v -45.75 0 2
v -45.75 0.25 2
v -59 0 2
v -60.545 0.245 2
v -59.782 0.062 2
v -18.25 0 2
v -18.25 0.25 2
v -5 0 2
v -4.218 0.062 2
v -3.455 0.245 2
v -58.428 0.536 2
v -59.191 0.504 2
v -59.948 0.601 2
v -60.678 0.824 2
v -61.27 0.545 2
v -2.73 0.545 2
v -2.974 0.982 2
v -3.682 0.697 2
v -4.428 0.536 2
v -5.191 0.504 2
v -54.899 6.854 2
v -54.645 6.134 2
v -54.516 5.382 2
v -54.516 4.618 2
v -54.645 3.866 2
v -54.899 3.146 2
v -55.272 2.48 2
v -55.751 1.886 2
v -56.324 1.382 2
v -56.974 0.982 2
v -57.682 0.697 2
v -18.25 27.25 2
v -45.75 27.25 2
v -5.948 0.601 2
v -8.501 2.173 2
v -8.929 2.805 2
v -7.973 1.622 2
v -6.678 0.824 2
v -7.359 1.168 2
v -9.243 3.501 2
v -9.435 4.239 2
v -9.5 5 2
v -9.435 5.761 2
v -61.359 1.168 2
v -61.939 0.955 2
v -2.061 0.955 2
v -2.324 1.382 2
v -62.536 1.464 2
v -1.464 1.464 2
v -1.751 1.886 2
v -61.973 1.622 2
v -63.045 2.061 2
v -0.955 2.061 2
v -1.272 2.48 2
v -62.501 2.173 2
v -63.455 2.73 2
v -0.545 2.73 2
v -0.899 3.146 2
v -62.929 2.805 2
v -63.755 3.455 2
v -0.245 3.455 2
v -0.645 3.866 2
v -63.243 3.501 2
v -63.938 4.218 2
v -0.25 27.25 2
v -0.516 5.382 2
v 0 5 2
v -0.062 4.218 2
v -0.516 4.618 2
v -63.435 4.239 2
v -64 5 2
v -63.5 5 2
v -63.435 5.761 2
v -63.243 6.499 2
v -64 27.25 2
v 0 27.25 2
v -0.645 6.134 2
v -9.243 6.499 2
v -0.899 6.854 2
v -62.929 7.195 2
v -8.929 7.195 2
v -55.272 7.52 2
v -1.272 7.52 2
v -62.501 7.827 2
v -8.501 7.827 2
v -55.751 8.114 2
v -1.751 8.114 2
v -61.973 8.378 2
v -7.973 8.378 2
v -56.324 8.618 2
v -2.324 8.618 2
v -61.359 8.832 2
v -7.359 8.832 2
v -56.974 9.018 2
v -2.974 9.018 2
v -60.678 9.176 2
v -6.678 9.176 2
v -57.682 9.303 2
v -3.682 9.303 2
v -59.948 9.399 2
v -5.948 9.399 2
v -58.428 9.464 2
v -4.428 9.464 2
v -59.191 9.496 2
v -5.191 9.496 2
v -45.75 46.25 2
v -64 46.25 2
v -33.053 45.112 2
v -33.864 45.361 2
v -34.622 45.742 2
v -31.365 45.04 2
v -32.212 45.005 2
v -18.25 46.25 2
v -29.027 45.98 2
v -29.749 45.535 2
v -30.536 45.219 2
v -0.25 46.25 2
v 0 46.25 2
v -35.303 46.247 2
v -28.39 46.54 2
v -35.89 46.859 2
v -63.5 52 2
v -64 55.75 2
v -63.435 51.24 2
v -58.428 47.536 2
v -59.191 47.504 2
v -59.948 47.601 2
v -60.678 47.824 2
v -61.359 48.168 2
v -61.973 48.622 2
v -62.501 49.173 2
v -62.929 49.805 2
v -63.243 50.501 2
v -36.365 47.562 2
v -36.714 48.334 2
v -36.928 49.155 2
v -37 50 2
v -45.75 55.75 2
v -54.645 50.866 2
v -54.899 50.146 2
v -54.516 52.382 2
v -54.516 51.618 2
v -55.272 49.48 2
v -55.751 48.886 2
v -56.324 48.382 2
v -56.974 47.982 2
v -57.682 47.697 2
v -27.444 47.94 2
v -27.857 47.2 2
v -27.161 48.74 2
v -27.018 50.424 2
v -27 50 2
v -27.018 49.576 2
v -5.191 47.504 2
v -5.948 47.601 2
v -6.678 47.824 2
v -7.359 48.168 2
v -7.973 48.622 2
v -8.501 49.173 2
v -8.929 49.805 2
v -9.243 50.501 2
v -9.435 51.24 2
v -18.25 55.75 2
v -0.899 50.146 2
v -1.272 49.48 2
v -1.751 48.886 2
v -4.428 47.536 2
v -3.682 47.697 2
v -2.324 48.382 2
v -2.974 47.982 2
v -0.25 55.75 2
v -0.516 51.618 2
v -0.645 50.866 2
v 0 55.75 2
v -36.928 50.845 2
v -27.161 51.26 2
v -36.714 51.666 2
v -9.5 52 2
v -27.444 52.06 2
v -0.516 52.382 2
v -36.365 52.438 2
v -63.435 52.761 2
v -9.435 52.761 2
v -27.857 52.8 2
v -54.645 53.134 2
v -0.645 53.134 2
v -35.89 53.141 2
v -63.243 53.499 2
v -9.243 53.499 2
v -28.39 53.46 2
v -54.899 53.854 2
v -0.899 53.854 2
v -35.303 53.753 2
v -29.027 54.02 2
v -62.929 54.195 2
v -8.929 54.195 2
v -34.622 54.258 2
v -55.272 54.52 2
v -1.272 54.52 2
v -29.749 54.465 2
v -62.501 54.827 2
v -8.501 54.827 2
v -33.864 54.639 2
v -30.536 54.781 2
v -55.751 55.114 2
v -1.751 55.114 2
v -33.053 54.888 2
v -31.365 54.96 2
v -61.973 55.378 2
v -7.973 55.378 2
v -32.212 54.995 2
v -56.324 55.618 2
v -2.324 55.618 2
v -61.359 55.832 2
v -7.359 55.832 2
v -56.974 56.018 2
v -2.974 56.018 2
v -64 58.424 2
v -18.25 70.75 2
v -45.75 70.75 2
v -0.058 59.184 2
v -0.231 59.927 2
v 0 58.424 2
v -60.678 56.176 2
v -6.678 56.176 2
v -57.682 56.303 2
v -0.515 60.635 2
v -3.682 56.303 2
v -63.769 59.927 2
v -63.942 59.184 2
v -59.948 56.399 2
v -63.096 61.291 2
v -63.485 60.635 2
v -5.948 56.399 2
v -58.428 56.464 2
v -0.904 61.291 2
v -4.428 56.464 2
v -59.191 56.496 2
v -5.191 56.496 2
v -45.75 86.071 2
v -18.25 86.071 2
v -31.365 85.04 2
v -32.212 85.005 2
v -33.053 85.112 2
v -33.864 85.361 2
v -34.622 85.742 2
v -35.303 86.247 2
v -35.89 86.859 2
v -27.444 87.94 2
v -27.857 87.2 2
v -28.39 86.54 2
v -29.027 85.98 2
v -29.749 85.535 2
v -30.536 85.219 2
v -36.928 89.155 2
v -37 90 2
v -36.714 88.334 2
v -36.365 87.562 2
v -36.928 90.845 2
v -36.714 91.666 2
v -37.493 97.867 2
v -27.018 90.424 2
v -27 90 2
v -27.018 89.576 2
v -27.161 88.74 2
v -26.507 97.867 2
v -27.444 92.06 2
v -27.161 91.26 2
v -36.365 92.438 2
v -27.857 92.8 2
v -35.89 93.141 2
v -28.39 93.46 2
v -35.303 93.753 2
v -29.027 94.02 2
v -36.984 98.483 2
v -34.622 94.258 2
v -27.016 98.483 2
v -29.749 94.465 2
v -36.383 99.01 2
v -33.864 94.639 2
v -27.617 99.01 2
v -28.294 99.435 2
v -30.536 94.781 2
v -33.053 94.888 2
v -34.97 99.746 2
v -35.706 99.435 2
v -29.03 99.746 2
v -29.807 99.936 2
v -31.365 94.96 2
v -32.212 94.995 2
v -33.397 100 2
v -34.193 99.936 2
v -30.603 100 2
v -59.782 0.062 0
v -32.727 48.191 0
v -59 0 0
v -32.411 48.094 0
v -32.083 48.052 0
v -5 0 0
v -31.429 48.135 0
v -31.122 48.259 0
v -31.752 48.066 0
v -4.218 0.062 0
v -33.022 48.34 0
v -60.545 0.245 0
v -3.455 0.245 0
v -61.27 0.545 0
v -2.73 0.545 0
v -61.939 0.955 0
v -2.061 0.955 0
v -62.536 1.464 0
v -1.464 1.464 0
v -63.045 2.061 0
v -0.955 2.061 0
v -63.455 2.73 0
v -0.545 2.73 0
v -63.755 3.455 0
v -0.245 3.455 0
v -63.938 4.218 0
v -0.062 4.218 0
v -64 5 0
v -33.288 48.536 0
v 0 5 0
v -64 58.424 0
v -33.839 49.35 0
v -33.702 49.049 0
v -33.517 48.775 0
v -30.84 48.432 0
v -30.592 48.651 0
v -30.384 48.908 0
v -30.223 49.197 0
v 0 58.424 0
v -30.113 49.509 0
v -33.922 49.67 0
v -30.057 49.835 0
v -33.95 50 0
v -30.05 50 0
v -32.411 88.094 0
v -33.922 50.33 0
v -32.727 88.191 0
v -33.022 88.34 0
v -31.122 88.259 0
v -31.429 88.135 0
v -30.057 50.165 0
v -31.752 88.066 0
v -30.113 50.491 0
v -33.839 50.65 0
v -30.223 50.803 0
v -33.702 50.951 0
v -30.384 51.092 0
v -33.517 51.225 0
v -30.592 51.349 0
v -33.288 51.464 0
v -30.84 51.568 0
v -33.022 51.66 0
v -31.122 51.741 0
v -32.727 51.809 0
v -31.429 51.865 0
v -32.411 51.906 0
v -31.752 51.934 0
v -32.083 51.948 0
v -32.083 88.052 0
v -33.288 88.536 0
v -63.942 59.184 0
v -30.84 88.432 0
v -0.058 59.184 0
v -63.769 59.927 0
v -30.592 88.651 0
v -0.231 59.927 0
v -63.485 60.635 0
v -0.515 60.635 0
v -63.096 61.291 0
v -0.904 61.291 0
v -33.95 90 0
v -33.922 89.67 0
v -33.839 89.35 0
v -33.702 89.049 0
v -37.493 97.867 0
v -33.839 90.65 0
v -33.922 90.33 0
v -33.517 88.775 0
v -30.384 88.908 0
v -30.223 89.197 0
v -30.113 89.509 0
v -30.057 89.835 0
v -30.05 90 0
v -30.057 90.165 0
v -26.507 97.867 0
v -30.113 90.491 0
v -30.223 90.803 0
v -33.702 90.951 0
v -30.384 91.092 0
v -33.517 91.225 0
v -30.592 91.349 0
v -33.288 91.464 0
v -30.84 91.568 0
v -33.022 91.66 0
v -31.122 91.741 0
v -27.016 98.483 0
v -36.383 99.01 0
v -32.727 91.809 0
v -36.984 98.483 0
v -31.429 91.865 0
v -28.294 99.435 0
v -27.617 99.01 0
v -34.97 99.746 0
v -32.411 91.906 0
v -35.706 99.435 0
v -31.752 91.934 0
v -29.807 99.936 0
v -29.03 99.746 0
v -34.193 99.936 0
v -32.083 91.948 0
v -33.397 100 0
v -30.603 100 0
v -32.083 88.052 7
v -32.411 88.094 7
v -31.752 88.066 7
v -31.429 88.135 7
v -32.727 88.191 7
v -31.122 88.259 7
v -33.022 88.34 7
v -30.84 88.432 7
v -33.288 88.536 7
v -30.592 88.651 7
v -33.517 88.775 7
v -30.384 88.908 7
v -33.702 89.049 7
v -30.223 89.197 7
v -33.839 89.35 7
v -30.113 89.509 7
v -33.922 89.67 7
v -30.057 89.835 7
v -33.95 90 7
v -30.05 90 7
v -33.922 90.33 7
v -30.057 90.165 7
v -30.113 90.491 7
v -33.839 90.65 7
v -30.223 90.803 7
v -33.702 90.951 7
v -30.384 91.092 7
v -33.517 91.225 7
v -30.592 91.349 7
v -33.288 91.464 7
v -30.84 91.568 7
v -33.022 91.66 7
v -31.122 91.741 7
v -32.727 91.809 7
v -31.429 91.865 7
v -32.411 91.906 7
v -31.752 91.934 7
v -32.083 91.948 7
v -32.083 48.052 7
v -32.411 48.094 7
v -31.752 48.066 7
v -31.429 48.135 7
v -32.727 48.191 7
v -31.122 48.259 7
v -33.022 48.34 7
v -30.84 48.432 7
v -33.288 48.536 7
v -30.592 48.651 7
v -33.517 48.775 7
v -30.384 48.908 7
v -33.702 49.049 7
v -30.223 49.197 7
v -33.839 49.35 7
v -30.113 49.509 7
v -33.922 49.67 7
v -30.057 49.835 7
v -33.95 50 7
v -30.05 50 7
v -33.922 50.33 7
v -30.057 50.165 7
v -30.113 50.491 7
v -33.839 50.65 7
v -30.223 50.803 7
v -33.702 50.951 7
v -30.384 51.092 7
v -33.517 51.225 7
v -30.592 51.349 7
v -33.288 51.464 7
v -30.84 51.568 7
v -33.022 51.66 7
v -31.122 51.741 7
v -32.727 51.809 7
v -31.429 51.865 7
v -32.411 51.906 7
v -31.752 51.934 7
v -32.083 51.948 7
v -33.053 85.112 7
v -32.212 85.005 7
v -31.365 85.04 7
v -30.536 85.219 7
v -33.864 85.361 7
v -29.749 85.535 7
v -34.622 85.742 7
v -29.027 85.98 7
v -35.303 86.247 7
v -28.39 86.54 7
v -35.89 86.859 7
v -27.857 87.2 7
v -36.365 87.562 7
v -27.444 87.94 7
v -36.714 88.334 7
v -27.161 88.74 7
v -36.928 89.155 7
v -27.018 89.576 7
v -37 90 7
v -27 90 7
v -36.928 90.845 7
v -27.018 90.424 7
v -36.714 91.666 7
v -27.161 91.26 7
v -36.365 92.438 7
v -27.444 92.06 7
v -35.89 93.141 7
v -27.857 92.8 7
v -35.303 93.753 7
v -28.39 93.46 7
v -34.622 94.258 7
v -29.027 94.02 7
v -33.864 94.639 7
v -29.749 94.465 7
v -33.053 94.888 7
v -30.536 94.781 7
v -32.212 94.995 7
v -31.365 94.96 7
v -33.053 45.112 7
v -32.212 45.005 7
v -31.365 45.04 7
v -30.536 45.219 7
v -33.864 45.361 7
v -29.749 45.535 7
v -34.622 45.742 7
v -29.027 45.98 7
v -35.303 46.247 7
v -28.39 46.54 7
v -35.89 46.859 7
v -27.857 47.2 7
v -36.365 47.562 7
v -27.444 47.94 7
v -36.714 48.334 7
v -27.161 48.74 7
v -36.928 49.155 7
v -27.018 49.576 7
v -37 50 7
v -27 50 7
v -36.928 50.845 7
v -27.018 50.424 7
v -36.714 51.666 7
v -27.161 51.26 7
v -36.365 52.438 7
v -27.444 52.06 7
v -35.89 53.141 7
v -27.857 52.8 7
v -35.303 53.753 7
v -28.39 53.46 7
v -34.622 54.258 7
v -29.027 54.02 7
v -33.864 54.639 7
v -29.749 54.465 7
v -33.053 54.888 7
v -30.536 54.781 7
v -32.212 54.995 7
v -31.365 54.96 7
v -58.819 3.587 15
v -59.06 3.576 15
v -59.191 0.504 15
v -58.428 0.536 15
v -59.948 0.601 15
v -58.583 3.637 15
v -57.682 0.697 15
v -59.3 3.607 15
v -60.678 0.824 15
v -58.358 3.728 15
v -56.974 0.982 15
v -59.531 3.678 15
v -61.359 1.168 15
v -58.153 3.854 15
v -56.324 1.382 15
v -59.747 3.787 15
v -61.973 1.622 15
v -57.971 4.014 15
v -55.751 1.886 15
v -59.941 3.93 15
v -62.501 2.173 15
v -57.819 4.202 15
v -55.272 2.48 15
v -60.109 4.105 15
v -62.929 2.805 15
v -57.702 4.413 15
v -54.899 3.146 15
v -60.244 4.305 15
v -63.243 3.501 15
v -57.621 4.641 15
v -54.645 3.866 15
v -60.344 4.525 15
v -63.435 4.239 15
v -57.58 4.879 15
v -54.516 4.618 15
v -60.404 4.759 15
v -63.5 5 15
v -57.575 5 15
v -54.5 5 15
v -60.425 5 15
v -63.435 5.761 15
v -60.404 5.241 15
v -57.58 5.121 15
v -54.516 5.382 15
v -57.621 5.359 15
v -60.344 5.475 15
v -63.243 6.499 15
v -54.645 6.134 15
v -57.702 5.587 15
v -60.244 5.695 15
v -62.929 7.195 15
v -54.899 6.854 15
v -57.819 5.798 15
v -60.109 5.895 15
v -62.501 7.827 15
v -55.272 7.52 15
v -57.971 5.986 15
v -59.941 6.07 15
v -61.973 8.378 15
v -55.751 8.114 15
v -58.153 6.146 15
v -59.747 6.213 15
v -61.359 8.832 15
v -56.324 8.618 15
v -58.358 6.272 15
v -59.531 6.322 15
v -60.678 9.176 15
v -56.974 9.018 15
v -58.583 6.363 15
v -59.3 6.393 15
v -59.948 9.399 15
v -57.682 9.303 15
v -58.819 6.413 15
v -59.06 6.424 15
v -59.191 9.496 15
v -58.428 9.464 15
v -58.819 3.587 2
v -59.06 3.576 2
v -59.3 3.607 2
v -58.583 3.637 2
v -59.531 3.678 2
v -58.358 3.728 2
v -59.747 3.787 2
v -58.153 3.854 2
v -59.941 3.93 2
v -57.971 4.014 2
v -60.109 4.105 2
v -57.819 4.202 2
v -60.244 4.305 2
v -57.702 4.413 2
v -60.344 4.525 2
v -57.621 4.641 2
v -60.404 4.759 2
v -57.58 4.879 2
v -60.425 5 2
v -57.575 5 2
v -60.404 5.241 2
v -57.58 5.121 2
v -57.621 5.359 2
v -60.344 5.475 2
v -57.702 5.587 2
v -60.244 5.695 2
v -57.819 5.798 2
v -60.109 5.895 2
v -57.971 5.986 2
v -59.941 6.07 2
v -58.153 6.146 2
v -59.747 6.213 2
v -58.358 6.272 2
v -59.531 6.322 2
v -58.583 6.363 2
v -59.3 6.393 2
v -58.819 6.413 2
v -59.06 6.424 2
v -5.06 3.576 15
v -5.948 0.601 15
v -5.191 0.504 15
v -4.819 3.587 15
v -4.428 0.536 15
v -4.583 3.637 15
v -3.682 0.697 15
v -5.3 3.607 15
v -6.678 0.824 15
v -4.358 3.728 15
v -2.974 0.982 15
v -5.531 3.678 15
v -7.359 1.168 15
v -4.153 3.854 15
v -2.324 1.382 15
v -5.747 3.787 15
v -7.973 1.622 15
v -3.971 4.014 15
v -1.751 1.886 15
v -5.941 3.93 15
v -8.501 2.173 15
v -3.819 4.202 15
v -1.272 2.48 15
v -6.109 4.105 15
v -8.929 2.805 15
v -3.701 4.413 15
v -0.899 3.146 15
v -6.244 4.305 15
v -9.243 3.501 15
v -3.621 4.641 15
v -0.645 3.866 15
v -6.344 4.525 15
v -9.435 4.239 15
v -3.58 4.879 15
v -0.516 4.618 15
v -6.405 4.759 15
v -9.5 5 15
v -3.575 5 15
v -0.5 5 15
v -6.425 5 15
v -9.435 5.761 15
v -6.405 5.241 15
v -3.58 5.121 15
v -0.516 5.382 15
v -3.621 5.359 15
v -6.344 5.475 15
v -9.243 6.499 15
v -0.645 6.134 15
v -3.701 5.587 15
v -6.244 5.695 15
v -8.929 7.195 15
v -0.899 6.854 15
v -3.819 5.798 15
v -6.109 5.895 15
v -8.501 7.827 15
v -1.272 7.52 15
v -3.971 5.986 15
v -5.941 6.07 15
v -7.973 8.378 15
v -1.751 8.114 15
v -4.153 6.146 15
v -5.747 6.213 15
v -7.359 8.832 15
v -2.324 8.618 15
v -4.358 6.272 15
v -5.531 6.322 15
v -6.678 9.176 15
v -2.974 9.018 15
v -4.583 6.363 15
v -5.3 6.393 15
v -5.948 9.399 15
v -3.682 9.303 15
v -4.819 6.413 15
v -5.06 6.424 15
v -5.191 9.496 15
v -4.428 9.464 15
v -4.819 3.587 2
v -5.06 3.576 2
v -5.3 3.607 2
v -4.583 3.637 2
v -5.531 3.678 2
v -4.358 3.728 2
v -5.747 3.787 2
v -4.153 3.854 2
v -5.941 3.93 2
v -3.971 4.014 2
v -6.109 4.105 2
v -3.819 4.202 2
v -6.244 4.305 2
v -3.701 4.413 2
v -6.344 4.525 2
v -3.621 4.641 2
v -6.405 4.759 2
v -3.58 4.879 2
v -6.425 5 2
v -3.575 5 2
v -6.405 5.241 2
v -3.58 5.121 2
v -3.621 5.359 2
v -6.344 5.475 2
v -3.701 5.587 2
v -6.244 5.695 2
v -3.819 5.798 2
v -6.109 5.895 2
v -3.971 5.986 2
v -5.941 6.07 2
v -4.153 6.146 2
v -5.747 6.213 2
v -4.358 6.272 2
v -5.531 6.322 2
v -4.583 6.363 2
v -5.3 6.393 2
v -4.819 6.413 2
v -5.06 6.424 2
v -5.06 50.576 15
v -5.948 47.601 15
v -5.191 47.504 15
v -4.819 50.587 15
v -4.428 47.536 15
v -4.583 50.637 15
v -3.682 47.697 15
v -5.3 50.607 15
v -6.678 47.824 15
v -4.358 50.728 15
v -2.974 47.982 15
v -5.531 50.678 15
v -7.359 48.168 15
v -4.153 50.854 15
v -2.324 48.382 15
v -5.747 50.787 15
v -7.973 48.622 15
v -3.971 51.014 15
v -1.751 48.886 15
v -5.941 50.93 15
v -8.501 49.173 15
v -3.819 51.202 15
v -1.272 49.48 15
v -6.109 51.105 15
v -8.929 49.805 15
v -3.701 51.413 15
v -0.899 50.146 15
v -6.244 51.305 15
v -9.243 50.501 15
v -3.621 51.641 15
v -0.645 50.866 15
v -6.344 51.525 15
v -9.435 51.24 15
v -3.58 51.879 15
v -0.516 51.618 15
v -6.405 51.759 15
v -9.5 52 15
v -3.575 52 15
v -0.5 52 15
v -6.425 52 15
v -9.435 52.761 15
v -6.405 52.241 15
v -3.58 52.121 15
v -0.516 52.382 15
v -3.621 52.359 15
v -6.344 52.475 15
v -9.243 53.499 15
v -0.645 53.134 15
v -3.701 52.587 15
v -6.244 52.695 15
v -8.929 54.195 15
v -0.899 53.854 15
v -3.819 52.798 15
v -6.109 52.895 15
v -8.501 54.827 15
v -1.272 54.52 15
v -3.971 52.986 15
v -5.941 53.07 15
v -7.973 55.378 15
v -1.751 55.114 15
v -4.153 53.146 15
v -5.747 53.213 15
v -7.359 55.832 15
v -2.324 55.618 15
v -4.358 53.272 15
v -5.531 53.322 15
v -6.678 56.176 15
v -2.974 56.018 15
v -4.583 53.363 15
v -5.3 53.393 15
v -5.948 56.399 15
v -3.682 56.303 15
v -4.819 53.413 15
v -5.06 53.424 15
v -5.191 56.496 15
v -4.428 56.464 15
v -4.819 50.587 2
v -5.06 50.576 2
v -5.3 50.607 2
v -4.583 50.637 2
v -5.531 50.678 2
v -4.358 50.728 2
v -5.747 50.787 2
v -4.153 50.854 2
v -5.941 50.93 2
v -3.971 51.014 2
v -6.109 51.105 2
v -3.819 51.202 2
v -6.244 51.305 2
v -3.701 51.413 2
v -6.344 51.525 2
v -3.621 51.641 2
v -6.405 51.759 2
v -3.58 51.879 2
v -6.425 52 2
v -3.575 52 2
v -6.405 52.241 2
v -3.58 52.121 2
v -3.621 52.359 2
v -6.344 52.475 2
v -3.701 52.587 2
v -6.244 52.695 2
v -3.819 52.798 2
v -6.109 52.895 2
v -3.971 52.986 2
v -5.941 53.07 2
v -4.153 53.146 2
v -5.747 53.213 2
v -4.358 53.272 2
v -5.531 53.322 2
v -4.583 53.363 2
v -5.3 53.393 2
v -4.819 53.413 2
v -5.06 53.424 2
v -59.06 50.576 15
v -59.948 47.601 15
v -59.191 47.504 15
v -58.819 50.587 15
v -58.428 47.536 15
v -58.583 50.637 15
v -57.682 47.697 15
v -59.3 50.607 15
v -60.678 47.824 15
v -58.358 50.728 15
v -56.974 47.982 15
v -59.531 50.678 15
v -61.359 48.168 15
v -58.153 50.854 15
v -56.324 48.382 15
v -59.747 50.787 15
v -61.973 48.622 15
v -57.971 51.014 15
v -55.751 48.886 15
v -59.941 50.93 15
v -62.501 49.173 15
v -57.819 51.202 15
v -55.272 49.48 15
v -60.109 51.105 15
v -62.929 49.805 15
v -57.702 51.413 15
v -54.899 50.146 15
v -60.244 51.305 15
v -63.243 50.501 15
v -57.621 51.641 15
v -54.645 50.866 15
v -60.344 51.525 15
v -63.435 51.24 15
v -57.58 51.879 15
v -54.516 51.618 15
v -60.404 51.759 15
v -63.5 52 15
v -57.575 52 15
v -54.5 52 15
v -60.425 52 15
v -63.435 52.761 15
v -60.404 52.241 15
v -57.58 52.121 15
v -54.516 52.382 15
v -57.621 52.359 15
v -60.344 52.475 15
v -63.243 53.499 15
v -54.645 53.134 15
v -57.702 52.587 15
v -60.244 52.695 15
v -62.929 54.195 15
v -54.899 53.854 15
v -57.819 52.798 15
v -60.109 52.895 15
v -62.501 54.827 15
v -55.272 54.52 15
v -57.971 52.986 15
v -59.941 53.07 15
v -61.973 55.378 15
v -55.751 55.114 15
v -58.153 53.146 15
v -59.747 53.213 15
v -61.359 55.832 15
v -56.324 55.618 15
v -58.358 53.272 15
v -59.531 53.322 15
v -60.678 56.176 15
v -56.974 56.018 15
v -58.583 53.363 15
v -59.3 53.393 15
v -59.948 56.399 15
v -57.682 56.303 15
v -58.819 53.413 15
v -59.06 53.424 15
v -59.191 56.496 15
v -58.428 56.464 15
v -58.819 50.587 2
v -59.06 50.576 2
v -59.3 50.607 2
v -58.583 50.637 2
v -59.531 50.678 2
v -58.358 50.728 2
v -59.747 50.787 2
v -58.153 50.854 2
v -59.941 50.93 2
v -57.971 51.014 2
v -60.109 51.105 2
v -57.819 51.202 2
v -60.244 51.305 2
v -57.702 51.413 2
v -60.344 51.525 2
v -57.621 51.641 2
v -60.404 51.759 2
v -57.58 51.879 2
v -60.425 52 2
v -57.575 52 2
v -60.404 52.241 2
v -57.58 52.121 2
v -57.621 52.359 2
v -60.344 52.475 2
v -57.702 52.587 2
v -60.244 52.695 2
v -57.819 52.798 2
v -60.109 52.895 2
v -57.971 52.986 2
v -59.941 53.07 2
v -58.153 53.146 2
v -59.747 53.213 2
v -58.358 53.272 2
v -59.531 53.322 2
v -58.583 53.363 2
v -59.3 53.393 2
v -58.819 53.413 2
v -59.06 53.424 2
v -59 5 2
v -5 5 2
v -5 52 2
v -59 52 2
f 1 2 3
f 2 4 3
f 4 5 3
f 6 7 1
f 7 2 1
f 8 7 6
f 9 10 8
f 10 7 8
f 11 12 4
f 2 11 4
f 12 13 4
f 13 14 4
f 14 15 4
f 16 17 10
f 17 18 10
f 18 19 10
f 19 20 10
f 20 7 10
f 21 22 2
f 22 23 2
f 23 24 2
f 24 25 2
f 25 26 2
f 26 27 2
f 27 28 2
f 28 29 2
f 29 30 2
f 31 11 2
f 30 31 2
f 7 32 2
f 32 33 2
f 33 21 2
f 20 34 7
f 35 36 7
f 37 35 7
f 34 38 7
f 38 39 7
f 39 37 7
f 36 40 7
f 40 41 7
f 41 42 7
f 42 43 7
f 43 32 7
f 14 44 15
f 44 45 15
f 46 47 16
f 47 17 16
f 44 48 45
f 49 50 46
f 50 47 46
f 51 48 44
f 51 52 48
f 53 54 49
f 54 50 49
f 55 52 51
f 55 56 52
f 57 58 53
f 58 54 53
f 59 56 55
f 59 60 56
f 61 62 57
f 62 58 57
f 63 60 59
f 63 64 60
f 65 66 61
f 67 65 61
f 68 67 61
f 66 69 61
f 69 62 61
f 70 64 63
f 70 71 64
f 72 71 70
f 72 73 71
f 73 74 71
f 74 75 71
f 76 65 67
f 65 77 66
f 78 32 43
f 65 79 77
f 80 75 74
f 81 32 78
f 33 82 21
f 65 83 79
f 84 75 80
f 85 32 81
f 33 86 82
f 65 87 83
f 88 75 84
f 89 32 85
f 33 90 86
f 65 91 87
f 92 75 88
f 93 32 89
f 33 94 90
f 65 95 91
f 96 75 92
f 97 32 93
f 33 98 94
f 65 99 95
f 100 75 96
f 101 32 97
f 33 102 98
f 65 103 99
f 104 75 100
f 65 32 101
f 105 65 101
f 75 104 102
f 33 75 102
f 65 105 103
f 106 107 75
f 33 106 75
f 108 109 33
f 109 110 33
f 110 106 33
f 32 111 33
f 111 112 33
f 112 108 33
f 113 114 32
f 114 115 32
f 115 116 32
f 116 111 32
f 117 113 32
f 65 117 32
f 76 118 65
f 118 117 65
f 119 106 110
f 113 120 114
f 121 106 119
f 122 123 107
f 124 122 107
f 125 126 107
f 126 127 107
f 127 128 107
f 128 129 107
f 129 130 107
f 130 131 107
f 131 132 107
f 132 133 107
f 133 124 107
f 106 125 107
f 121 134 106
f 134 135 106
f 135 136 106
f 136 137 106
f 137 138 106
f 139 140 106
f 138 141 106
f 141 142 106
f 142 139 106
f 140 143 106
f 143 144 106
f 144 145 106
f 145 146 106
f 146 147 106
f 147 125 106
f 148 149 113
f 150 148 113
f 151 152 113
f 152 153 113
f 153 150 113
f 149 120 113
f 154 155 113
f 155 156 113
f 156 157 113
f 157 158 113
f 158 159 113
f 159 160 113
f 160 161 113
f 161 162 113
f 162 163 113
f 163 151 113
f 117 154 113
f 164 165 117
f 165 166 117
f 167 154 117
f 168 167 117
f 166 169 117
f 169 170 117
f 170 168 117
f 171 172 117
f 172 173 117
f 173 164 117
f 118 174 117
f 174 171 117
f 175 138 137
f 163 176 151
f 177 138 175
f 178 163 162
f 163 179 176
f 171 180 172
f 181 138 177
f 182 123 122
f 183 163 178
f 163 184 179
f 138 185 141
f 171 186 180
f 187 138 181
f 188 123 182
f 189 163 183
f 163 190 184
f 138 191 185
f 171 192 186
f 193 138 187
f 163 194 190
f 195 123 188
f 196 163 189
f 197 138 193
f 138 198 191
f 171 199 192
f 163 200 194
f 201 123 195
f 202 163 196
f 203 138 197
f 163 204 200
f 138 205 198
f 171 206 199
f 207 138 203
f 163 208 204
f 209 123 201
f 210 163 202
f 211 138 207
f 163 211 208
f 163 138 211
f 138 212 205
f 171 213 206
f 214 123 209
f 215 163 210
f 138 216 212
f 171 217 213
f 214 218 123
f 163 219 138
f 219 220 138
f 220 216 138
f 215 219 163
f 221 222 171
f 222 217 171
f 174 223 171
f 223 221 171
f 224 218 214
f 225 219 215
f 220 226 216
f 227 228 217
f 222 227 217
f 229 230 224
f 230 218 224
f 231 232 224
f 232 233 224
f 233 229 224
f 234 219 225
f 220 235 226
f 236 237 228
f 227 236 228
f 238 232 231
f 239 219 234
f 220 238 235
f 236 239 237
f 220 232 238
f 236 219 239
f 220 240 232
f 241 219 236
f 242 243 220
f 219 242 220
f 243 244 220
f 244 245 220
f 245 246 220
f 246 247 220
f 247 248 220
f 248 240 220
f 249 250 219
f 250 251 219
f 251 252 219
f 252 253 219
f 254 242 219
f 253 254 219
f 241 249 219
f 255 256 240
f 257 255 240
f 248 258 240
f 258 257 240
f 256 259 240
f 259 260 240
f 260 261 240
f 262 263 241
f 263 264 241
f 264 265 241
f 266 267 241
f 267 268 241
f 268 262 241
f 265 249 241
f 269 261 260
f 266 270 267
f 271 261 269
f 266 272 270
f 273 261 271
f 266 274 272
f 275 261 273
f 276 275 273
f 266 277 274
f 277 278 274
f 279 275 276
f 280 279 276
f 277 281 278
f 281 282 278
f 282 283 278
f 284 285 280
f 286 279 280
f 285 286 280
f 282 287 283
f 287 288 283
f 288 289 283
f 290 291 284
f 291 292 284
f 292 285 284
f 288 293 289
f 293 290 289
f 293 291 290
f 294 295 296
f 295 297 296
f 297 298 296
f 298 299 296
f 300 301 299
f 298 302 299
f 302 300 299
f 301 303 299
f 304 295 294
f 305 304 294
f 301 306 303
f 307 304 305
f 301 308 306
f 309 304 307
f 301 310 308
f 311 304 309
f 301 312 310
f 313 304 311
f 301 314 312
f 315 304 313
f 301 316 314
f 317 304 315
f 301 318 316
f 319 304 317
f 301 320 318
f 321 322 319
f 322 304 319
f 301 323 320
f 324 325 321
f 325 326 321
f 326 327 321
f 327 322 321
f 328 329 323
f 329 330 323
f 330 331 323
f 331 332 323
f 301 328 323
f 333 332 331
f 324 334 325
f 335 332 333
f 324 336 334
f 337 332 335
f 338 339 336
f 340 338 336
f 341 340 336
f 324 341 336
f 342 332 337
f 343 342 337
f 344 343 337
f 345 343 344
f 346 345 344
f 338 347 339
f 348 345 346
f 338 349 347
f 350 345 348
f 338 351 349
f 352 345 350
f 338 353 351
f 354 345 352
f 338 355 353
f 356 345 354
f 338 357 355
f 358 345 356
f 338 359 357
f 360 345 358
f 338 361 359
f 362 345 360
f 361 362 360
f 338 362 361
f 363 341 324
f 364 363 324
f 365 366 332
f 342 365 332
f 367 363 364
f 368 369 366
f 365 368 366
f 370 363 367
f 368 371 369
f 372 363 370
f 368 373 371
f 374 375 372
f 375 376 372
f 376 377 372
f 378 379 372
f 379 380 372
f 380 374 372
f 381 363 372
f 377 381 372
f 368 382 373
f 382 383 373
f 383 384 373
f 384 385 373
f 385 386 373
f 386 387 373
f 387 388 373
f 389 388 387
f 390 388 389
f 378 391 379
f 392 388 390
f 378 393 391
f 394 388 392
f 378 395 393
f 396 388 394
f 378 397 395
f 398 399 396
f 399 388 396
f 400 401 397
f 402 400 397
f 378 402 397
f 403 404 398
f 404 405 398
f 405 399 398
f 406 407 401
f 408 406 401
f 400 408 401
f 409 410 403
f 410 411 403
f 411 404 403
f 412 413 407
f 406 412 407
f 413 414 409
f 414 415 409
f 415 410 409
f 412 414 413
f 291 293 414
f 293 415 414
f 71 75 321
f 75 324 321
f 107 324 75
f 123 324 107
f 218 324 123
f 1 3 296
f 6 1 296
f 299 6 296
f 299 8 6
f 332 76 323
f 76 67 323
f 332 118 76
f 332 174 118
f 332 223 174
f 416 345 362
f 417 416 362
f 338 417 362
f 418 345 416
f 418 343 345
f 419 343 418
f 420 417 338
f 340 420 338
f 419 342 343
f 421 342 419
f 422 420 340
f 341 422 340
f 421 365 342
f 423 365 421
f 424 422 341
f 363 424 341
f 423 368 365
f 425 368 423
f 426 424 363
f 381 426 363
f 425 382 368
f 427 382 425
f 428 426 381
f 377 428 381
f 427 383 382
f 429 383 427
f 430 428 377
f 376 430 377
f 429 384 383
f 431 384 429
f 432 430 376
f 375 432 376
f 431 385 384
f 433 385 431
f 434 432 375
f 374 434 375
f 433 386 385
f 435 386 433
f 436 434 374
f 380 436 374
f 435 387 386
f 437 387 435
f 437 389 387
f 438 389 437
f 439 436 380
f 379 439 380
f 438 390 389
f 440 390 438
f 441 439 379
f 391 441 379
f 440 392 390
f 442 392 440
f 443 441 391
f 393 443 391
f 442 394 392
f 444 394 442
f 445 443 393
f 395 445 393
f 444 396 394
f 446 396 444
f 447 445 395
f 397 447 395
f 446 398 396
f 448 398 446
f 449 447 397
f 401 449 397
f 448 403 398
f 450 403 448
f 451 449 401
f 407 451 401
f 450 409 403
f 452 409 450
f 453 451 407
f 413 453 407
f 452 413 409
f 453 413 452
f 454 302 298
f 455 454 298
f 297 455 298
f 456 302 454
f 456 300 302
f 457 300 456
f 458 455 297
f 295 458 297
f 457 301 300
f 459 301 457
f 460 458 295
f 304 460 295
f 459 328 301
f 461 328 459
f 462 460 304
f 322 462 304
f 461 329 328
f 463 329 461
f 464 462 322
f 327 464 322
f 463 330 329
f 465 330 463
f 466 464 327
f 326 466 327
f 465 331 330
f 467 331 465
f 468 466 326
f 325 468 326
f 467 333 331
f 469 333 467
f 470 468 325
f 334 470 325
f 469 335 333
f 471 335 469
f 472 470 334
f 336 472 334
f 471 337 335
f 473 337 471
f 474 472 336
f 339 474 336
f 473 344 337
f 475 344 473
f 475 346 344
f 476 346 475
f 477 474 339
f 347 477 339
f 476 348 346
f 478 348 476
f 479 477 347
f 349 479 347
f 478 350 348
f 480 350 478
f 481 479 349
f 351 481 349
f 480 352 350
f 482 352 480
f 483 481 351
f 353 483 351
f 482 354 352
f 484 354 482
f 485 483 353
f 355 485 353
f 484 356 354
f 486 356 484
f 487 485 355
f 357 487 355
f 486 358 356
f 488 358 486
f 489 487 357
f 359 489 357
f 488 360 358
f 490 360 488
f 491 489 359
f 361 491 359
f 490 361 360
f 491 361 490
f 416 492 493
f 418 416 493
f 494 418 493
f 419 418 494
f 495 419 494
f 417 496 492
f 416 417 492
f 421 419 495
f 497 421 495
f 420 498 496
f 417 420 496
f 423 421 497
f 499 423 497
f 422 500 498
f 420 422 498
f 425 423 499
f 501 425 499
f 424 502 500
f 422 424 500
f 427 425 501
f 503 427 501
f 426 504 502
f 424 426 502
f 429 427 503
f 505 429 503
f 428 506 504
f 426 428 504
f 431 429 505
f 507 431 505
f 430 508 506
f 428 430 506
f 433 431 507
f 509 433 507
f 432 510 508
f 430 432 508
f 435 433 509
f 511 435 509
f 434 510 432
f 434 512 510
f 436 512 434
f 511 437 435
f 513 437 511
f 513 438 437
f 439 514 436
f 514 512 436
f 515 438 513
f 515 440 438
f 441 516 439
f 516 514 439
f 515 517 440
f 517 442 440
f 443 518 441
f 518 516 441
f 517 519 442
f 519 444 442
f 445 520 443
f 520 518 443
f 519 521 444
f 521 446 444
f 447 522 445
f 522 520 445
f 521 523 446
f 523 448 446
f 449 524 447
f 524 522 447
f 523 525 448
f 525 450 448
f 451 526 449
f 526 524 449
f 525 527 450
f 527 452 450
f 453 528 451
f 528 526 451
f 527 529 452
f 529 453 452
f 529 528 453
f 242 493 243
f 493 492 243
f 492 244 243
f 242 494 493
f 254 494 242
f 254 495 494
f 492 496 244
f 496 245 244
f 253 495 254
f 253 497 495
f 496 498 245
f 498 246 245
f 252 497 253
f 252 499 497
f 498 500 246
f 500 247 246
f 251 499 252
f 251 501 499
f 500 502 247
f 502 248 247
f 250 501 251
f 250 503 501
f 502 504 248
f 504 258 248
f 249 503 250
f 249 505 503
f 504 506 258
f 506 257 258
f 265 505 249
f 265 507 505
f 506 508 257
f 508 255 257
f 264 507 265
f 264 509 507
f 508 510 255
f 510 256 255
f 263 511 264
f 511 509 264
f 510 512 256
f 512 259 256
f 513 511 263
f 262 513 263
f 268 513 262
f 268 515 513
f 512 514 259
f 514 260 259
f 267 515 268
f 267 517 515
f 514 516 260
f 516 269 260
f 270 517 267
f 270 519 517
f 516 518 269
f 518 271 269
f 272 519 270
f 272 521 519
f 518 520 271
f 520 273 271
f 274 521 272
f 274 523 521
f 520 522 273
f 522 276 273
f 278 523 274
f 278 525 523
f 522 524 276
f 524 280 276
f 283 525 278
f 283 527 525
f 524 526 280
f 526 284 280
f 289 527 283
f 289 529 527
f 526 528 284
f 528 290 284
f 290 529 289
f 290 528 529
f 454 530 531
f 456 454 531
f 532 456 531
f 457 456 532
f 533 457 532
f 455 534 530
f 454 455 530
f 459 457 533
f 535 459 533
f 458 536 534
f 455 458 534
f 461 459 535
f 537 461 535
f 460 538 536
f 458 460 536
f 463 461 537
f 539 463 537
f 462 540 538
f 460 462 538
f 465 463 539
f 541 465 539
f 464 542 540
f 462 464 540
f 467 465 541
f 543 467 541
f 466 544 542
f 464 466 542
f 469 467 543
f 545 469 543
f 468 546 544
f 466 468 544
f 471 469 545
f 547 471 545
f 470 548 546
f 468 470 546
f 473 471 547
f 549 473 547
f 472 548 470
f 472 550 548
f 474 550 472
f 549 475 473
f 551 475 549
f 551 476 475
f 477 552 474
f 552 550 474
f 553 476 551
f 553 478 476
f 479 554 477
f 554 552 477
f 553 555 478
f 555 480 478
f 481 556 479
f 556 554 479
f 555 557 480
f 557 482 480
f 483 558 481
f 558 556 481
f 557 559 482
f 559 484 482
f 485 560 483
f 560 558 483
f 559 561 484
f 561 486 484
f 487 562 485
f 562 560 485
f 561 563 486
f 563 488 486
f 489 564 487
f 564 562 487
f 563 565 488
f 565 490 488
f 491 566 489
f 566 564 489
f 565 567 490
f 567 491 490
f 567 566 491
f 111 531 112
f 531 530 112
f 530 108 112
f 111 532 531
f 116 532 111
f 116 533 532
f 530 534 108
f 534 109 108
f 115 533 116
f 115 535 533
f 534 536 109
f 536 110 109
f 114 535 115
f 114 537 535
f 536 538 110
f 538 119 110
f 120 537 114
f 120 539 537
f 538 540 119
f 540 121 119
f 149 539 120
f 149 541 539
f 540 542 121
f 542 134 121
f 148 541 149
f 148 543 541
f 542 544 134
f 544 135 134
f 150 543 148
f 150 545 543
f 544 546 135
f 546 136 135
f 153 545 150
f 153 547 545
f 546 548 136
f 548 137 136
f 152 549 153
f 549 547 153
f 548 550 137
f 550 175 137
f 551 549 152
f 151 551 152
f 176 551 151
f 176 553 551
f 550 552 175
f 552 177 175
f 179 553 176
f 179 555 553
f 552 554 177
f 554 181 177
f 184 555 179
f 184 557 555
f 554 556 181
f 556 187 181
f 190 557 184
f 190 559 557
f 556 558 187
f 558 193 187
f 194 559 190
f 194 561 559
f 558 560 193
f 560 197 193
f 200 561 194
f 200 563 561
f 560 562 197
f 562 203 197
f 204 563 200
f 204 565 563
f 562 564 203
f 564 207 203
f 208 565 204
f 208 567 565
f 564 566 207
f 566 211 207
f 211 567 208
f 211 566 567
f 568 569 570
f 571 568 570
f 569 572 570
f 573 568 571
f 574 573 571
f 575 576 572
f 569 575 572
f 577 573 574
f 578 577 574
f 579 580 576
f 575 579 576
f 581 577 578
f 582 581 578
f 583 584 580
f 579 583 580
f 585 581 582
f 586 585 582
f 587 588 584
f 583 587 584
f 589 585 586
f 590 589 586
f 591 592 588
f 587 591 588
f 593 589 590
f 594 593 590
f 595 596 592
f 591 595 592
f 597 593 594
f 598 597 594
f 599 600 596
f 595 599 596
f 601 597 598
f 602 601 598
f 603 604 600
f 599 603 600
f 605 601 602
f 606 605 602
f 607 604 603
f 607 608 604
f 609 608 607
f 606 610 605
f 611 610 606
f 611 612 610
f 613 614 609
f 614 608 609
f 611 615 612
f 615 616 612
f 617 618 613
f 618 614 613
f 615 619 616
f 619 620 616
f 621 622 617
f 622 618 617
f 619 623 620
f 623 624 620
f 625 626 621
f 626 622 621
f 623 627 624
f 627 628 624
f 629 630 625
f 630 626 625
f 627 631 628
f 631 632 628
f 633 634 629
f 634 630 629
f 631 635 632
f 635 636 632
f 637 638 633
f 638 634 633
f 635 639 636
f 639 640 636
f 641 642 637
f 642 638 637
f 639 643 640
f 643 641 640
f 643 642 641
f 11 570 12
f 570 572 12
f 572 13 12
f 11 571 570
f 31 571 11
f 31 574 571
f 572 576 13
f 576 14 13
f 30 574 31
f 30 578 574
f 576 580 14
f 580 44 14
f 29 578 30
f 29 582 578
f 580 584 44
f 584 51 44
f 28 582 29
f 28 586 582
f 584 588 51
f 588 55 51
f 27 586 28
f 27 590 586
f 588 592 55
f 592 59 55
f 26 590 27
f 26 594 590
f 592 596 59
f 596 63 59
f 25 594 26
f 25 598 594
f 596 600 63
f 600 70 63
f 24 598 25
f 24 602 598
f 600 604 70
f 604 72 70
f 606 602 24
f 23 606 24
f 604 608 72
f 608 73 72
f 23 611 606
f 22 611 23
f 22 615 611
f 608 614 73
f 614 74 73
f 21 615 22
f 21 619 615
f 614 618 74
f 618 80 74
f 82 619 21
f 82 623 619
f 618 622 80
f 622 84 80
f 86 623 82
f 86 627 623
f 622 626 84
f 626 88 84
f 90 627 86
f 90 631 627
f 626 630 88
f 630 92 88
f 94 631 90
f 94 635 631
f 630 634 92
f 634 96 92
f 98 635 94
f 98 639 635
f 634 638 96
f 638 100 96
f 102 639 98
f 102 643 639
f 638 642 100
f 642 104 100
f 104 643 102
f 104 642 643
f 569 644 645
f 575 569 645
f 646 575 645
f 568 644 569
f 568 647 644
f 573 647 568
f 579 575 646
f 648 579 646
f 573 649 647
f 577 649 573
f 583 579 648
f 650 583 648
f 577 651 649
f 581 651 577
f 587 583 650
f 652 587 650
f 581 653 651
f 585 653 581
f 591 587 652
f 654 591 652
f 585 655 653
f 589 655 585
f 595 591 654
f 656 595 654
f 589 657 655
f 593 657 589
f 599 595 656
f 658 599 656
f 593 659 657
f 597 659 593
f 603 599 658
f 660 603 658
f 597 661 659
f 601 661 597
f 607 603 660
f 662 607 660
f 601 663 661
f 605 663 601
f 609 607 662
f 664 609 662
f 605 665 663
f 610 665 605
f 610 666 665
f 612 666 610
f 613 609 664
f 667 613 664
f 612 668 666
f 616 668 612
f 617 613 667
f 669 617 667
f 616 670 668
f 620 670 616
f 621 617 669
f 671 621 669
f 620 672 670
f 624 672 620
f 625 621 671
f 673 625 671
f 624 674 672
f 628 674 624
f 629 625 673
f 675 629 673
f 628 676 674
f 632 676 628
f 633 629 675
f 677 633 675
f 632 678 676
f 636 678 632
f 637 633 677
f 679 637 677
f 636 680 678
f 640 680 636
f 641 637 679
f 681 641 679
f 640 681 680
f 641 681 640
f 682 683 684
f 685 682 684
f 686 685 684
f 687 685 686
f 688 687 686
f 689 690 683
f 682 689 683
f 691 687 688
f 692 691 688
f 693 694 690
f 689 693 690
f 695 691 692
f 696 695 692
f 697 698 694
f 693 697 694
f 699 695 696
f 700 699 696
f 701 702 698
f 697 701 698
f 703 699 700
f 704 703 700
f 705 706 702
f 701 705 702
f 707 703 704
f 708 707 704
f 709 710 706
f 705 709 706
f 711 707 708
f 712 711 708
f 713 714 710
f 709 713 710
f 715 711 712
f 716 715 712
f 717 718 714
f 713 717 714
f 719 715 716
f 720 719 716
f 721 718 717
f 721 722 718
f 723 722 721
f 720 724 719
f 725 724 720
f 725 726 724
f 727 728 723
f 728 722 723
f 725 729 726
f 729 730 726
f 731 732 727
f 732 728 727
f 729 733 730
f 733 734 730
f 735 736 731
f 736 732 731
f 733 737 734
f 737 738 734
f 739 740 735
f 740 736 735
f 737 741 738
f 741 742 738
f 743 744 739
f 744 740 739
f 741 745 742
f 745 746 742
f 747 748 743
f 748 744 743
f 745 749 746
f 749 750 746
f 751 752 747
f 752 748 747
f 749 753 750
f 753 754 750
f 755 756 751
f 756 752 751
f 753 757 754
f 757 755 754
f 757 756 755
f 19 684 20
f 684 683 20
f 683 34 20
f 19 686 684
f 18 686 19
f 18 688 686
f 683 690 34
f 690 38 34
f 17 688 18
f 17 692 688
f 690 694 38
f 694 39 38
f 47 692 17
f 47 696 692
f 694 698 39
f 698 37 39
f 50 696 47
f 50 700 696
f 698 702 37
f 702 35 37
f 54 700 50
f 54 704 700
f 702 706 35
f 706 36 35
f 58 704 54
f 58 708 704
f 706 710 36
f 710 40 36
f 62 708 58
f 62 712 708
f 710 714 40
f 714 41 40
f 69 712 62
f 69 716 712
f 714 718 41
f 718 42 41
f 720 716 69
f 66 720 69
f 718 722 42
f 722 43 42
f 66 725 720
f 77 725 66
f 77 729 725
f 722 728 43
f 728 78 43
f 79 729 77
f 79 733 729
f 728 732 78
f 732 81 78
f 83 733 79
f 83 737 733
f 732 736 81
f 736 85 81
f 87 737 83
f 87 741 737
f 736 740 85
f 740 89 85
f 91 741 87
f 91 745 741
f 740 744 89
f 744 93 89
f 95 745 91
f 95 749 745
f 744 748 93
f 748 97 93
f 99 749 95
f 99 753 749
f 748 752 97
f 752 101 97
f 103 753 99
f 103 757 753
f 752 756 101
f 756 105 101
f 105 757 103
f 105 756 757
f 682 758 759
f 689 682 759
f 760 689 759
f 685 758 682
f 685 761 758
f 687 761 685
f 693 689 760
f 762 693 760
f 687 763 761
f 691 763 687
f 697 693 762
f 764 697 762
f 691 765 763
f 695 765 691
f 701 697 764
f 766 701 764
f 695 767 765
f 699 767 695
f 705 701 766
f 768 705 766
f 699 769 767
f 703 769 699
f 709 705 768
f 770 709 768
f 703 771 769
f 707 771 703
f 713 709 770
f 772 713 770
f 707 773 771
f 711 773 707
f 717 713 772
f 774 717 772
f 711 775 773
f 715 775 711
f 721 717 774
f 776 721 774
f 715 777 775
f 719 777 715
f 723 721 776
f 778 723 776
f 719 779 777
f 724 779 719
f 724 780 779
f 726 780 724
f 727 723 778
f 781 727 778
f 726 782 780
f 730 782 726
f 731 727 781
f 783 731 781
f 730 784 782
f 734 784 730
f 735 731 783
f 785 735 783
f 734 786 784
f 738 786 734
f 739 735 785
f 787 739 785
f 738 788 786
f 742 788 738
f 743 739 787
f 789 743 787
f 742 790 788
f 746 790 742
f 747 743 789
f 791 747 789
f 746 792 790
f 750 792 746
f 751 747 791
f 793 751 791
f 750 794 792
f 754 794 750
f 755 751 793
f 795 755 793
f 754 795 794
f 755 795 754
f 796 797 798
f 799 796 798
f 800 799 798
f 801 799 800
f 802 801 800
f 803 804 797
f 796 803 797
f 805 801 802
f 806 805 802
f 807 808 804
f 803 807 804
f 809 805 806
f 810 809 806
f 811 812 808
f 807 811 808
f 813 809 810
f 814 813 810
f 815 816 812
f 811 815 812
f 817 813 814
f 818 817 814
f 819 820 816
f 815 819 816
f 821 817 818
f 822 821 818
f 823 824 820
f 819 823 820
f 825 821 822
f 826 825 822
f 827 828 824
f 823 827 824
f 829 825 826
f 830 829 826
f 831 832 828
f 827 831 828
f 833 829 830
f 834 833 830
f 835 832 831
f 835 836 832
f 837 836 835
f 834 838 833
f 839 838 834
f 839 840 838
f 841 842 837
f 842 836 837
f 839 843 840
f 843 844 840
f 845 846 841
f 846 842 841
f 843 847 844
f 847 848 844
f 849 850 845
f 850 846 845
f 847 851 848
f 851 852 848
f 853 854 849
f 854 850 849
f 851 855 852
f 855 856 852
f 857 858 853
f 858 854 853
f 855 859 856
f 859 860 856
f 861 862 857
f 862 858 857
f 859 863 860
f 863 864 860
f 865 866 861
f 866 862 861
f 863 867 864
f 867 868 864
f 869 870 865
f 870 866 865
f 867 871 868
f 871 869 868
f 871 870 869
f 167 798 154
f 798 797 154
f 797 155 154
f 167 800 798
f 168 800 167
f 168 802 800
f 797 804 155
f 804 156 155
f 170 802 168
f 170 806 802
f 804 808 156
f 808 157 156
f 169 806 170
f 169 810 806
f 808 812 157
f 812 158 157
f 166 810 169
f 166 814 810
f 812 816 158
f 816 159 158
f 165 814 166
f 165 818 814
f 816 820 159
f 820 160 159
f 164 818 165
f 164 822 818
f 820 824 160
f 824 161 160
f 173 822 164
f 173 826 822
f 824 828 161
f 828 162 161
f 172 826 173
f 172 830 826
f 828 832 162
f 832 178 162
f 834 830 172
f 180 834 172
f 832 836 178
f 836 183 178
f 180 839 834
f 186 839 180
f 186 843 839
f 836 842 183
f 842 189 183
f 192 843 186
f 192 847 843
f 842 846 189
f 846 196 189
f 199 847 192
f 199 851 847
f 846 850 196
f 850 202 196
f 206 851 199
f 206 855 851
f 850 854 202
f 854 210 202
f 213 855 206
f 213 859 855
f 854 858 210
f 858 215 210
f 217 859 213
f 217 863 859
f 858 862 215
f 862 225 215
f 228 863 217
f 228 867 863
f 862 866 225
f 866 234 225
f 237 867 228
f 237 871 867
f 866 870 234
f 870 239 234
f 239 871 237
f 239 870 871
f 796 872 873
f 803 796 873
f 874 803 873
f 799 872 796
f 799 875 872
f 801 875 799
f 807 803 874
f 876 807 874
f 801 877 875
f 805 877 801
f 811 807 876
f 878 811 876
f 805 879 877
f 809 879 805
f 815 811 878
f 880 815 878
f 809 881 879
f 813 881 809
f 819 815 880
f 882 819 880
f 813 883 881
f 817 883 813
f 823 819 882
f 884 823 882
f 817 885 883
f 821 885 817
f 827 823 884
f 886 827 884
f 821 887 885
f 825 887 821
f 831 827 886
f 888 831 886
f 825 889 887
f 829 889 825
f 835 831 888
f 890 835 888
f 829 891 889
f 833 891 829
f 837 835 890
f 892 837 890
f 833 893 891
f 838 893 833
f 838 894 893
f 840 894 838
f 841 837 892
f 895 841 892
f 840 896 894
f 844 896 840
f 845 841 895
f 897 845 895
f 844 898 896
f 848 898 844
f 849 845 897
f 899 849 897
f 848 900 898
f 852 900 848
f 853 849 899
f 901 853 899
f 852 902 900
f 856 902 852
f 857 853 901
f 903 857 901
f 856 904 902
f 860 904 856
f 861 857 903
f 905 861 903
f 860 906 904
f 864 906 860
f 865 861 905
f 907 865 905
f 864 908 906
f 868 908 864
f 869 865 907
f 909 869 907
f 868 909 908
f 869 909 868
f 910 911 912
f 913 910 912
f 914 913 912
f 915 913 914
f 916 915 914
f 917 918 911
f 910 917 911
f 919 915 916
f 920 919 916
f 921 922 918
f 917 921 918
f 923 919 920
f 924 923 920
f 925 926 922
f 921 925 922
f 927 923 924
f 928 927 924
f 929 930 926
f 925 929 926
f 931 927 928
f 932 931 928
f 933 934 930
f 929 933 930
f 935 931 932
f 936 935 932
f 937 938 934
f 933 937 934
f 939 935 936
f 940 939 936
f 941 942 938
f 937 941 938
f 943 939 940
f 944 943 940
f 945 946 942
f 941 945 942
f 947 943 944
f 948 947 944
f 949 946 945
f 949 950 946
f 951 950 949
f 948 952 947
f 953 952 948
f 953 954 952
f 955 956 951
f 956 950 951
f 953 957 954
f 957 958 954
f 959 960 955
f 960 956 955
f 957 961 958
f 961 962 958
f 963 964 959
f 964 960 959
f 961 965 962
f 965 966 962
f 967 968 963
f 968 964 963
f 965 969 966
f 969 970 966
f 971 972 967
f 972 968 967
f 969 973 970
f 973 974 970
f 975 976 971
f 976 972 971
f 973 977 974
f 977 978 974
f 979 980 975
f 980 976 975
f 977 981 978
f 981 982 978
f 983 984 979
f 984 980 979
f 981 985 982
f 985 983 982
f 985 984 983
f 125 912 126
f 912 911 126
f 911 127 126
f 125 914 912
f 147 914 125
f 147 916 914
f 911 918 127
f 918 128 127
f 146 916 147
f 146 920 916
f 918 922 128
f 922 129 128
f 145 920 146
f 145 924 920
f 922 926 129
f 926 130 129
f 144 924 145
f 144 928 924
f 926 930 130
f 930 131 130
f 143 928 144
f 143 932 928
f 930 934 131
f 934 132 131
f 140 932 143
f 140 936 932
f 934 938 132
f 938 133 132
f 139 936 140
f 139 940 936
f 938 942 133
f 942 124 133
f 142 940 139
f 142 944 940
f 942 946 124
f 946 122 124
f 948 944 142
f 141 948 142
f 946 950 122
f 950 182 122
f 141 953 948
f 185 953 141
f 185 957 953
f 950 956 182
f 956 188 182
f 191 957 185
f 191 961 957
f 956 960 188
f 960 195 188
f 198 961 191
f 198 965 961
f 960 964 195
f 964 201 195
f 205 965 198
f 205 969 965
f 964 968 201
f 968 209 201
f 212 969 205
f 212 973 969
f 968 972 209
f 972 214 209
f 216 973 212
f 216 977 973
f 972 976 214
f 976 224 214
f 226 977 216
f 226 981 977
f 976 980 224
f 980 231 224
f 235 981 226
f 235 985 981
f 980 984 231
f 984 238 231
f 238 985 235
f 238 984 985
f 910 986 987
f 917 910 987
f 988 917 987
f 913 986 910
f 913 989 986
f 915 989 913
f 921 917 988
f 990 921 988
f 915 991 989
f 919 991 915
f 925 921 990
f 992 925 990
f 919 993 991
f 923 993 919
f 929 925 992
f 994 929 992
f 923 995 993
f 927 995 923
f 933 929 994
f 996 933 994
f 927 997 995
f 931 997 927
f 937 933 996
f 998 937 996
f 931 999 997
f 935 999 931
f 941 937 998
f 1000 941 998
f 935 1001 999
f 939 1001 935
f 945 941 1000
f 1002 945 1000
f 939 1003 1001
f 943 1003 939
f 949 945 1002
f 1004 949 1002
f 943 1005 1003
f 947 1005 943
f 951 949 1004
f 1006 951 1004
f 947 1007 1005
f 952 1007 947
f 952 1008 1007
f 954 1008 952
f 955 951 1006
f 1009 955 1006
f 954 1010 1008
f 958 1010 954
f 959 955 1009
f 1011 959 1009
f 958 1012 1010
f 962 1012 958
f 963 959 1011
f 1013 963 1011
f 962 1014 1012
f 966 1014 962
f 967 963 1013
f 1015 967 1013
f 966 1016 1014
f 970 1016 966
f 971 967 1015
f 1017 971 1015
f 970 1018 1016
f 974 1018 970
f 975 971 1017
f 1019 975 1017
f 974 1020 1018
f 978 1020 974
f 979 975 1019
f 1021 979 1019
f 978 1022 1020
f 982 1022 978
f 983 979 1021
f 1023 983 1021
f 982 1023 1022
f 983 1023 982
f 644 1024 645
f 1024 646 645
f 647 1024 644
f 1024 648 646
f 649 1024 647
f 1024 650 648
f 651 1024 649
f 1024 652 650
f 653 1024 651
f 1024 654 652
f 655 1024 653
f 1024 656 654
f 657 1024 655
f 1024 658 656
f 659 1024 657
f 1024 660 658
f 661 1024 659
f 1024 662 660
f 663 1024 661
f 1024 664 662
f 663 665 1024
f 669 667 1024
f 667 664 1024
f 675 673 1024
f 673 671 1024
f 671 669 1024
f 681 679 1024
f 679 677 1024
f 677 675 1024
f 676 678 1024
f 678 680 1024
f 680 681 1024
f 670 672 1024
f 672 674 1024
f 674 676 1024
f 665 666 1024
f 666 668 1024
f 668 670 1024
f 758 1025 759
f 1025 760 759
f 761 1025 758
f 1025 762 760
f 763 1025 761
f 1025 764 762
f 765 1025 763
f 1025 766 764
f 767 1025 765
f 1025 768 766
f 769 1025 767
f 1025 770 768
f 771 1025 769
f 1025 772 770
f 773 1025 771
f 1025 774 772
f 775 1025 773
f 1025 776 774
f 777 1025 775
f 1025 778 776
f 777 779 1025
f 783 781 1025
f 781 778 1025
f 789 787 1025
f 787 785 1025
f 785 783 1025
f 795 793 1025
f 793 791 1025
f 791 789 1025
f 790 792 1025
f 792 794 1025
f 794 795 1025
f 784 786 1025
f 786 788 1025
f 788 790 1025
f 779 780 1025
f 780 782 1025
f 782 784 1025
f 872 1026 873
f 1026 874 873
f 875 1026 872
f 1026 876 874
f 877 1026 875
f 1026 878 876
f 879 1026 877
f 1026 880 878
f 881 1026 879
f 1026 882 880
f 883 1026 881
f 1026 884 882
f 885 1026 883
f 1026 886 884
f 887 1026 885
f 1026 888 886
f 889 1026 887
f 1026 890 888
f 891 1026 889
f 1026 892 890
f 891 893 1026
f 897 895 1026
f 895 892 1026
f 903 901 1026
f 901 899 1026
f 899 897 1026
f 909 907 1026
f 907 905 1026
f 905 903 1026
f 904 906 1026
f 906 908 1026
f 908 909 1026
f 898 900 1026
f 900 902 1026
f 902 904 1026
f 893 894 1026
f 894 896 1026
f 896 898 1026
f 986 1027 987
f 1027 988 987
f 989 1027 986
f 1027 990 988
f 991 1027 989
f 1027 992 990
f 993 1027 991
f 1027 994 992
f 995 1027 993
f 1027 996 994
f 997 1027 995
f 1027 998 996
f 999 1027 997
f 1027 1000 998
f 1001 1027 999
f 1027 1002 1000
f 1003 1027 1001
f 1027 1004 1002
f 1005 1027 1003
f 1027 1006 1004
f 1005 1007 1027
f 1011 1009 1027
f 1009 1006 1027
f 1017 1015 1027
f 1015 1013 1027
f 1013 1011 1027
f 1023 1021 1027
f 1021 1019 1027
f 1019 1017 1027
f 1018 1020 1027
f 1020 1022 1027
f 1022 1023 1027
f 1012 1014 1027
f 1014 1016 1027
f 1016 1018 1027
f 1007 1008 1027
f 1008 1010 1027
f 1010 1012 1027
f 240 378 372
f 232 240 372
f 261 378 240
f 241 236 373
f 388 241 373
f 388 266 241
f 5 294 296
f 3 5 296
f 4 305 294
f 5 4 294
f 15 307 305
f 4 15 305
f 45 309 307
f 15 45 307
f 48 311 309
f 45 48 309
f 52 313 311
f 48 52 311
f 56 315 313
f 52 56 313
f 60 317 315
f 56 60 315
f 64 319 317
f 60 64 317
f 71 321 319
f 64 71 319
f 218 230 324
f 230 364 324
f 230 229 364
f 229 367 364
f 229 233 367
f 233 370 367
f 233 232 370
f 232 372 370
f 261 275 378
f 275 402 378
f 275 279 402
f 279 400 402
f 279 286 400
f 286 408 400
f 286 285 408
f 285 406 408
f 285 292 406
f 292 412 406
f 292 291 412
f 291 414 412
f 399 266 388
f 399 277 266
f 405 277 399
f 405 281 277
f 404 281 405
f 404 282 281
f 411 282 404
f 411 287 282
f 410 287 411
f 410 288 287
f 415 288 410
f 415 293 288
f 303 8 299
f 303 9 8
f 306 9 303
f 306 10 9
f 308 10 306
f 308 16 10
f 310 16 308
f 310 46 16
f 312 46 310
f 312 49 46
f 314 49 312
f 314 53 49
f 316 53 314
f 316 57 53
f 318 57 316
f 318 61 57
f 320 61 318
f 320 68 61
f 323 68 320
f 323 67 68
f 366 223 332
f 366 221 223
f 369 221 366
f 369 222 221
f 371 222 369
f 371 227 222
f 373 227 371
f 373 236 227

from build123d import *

# Parameters (mm, degrees)
SKETCH1_W           = 100
SKETCH1_H           = 64
SKETCH1_R           = 1.95
BOSS_EXTRUDE1_DEPTH = 2
SKETCH2_R           = 5
SKETCH2_R_2         = 1.95
BOSS_EXTRUDE2_DEPTH = 5
SKETCH3_R           = 4.5
SKETCH3_R_2         = 1.425
BOSS_EXTRUDE3_DEPTH = 13
CUT_EXTRUDE1_DEPTH  = 120.436175424
FILLET1_R           = 5


with BuildPart() as part:
    # Sketch1 → Boss-Extrude1 (new body)
    with BuildSketch(Plane(origin=(0, 0, 0), x_dir=(0, 1, 0), z_dir=(0, 0, 1))):
        with Locations((50, 32)):
            Rectangle(SKETCH1_W, SKETCH1_H)
        with Locations(Location((90, 32, 0), (0, 0, 270))):
            Circle(SKETCH1_R, mode=Mode.SUBTRACT)
        with Locations(Location((50, 32, 0), (0, 0, 270))):
            Circle(SKETCH1_R, mode=Mode.SUBTRACT)
    extrude(amount=BOSS_EXTRUDE1_DEPTH)

    # Sketch2 → Boss-Extrude2 (add)
    # profile 1 of 2: a face of its own
    with BuildSketch(Plane.XY.offset(2)):
        with Locations((-32, 50)):
            Circle(SKETCH2_R)
        with Locations((-32, 50)):
            Circle(SKETCH2_R_2, mode=Mode.SUBTRACT)
    # profile 2 of 2: a face of its own
    with BuildSketch(Plane.XY.offset(2)):
        with Locations((-32, 90)):
            Circle(SKETCH2_R)
        with Locations((-32, 90)):
            Circle(SKETCH2_R_2, mode=Mode.SUBTRACT)
    extrude(amount=BOSS_EXTRUDE2_DEPTH)

    # Sketch3 → Boss-Extrude3 (add)
    # profile 1 of 4: a face of its own
    with BuildSketch(Plane.XY.offset(2)):
        with Locations(Location((-59, 5, 0), (0, 0, 180))):
            Circle(SKETCH3_R)
        with Locations(Location((-59, 5, 0), (0, 0, 180))):
            Circle(SKETCH3_R_2, mode=Mode.SUBTRACT)
    # profile 2 of 4: a face of its own
    with BuildSketch(Plane.XY.offset(2)):
        with Locations(Location((-5, 5, 0), (0, 0, 180))):
            Circle(SKETCH3_R)
        with Locations(Location((-5, 5, 0), (0, 0, 180))):
            Circle(SKETCH3_R_2, mode=Mode.SUBTRACT)
    # profile 3 of 4: a face of its own
    with BuildSketch(Plane.XY.offset(2)):
        with Locations(Location((-5, 52, 0), (0, 0, 180))):
            Circle(SKETCH3_R)
        with Locations(Location((-5, 52, 0), (0, 0, 180))):
            Circle(SKETCH3_R_2, mode=Mode.SUBTRACT)
    # profile 4 of 4: a face of its own
    with BuildSketch(Plane.XY.offset(2)):
        with Locations(Location((-59, 52, 0), (0, 0, 180))):
            Circle(SKETCH3_R)
        with Locations(Location((-59, 52, 0), (0, 0, 180))):
            Circle(SKETCH3_R_2, mode=Mode.SUBTRACT)
    extrude(amount=BOSS_EXTRUDE3_DEPTH)

    # Sketch4 → Cut-Extrude1 (cut, through all)
    with BuildSketch(Plane.XY.offset(2)):
        Polygon((-64, 100), (-36, 100), (-64, 60), align=None)
        Polygon((-28, 100), (0, 100), (0, 60), align=None)
    extrude(amount=-CUT_EXTRUDE1_DEPTH, mode=Mode.SUBTRACT)

    # Fillet1
    fillet1_edges = [part.edges().sort_by_distance(p)[0] for p in [
        (-64, 60, 1),
        (-36, 100, 1),
        (-64, 0, 1),
        (0, 60, 1),
        (-28, 100, 1),
        (0, 0, 1),
    ]]
    fillet(fillet1_edges, radius=FILLET1_R)


solid = part.part
